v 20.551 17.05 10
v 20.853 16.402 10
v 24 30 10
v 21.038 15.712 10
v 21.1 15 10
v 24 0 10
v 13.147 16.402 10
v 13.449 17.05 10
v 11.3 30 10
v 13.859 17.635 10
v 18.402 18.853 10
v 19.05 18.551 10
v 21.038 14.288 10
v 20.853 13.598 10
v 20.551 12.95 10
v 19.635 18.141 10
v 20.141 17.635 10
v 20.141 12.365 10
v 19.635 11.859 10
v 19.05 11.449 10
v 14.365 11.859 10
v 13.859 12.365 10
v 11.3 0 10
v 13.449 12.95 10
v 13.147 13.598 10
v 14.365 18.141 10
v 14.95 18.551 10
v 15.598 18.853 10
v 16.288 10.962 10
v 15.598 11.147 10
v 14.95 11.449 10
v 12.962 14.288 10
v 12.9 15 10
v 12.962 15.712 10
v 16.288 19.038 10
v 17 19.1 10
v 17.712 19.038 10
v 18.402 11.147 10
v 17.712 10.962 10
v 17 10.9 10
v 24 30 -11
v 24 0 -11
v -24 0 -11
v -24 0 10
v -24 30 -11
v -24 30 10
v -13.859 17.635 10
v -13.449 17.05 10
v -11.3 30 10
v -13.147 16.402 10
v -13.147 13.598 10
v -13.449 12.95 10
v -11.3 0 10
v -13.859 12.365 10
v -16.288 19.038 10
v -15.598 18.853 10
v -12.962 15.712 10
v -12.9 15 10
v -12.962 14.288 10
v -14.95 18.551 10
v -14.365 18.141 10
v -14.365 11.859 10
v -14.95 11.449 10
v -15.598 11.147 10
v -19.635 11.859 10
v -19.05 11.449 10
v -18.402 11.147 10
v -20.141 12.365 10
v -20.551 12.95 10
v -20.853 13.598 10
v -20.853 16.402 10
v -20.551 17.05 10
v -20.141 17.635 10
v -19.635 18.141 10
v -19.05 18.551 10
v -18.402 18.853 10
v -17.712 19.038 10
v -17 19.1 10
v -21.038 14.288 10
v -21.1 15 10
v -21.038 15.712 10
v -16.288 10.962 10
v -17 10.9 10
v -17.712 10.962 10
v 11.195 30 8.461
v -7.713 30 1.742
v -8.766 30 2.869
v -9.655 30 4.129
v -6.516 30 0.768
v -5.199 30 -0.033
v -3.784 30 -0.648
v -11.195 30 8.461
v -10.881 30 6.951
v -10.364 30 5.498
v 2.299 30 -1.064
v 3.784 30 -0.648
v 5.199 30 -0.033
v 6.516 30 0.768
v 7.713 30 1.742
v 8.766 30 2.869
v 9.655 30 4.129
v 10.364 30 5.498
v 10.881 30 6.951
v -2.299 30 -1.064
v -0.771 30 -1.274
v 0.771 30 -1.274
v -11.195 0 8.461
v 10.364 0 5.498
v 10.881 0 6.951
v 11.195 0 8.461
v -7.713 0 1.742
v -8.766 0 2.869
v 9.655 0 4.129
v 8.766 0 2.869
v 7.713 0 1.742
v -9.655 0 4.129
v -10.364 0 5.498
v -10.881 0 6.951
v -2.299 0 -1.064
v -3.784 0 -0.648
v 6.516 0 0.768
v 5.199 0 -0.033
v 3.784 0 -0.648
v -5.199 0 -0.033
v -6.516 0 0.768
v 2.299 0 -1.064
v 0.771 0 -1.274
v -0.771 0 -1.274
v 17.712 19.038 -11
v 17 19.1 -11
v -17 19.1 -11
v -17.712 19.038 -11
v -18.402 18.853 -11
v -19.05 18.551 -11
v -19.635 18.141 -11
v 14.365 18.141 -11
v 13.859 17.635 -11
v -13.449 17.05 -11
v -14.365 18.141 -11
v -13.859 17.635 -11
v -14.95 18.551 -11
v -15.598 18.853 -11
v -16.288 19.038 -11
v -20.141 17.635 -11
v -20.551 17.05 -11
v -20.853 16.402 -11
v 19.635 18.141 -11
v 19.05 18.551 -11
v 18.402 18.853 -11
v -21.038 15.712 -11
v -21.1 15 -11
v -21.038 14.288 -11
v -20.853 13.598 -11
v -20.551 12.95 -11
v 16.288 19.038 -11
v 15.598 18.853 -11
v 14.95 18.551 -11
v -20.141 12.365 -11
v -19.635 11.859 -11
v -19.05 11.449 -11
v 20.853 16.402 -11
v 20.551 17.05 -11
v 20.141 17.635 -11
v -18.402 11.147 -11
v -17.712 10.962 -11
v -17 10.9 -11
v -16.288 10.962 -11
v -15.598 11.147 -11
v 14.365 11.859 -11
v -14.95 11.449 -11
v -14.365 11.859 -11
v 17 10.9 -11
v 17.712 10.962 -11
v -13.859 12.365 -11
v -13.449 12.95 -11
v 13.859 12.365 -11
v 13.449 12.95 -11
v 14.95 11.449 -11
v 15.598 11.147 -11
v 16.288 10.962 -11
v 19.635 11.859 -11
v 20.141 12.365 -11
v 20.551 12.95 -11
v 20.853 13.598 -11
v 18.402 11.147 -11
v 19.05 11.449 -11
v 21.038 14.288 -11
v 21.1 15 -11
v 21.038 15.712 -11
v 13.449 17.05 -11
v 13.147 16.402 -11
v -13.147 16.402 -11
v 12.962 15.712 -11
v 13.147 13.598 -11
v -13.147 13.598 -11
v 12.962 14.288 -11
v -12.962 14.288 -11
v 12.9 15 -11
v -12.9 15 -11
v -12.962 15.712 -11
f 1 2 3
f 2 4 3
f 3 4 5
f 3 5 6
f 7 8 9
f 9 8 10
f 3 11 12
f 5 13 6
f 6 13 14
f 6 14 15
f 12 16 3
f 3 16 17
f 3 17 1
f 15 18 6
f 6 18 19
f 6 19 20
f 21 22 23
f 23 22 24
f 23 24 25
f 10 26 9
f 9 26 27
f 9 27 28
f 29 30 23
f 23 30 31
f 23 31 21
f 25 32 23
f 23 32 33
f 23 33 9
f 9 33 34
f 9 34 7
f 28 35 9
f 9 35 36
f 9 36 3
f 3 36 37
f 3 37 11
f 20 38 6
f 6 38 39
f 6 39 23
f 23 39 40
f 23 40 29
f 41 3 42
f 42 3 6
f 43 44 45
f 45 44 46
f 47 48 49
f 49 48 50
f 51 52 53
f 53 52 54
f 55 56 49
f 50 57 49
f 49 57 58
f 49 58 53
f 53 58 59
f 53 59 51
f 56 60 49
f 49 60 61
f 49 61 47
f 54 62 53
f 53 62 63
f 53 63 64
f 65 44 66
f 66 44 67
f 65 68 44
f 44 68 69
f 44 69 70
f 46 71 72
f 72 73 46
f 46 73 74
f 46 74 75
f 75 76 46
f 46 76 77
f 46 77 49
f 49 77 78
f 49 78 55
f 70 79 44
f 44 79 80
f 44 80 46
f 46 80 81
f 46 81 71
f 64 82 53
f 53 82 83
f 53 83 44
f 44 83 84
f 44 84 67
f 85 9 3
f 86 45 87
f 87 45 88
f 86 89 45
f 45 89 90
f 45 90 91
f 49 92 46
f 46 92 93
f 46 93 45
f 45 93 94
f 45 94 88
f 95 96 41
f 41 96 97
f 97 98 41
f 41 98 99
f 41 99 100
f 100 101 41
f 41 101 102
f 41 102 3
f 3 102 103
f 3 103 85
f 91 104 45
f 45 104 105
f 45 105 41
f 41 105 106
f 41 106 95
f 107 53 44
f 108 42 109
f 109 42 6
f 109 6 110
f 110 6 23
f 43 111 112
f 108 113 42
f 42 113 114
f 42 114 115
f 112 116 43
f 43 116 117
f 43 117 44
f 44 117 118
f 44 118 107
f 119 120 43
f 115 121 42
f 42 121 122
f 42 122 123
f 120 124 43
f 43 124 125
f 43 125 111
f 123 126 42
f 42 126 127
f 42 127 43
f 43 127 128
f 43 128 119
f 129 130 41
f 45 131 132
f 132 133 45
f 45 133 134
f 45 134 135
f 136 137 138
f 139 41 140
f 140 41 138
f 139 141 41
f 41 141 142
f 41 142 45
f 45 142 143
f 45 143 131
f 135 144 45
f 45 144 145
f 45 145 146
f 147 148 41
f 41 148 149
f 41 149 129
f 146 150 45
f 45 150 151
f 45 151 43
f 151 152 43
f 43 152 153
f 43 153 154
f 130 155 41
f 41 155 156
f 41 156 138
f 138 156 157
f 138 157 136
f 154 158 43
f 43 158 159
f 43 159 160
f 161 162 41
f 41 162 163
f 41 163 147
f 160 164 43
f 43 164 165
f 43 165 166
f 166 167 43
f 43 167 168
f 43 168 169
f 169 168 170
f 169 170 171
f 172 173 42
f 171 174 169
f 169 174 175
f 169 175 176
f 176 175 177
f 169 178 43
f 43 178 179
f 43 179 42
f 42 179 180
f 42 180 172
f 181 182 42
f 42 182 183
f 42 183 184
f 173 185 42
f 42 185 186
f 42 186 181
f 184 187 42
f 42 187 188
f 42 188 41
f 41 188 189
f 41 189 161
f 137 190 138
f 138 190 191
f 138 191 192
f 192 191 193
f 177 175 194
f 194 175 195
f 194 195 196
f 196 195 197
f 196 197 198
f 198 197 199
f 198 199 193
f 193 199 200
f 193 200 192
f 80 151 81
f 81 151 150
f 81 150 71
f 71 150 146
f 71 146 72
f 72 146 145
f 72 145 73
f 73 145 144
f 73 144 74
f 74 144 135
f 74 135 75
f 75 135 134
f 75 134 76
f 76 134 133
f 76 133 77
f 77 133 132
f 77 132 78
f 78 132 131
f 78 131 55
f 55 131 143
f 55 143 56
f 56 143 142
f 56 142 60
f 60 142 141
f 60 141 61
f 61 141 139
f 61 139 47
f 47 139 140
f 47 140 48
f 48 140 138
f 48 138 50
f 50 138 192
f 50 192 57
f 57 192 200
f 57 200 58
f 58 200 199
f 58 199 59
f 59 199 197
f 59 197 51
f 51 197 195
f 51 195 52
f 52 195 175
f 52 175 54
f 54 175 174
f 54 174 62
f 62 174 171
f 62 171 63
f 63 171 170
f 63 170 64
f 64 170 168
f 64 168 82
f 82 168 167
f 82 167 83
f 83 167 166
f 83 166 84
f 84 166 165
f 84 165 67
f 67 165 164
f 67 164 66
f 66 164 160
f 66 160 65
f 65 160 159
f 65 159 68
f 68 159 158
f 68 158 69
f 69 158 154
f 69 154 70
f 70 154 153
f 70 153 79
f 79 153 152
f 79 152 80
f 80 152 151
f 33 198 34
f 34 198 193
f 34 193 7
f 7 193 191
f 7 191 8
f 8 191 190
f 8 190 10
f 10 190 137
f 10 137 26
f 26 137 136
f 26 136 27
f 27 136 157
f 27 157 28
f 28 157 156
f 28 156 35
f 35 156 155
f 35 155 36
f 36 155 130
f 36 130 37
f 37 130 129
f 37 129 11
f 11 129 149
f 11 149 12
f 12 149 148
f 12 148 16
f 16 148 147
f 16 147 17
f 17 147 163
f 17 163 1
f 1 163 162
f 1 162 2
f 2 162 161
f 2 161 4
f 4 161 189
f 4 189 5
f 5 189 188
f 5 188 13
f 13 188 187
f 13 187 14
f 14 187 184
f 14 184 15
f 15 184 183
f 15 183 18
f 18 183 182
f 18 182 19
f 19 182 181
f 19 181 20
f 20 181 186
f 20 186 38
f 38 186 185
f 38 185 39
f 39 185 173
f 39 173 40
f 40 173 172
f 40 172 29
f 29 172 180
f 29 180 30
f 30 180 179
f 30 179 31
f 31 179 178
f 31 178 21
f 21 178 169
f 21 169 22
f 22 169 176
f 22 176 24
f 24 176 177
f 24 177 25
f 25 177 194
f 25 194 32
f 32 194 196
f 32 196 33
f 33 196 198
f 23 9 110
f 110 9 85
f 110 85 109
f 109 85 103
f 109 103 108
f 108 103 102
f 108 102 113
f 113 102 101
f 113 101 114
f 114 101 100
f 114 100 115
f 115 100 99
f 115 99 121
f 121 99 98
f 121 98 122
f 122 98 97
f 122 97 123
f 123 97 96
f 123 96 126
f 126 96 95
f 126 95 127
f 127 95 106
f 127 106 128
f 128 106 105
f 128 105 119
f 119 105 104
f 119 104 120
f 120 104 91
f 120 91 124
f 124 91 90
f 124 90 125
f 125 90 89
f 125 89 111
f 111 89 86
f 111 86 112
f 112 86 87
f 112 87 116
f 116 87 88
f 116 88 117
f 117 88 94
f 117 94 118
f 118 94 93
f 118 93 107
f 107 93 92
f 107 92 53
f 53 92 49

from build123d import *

# Parameters (mm, degrees)
SKETCH_1_W          = 48
SKETCH_1_H          = 20
EXTRUDE_1_DEPTH     = 30
SKETCH_2_W          = 14
SKETCH_2_H          = 30
CUT_EXTRUDE_1_DEPTH = 7
SKETCH_7_W          = 22
SKETCH_7_H          = 30
EXTRUDE_2_DEPTH     = 48
SKETCH_8_W          = 21
SKETCH_8_H          = 30
CUT_EXTRUDE_2_DEPTH = 14
SKETCH_9_W          = 21
SKETCH_9_H          = 30
CUT_EXTRUDE_3_DEPTH = 14
SKETCH_11_W         = 10.2
SKETCH_11_H         = 20.2
CUT_EXTRUDE_4_DEPTH = 56.497747702
SKETCH_13_R         = 4.1
CUT_EXTRUDE_5_DEPTH = 44.783558558
FILLET_1_R          = 7
SKETCH1_W           = 10.2
SKETCH1_H           = 20.2
BOSS_EXTRUDE1_DEPTH = 4
SKETCH2_W           = 20
SKETCH2_H           = 21
CUT_EXTRUDE1_DEPTH  = 51
SKETCH3_R           = 11.3
CUT_EXTRUDE2_DEPTH  = 40.962482405


with BuildPart() as part:
    # Эскиз1 → Бобышка-Вытянуть1 (new body)
    with BuildSketch(Plane(origin=(0, 0, 0), x_dir=(1, 0, 0), z_dir=(0, 1, 0))):
        Rectangle(SKETCH_1_W, SKETCH_1_H)
    extrude(amount=EXTRUDE_1_DEPTH)

    # Эскиз2 → Вырез-Вытянуть1 (cut)
    with BuildSketch(Plane.XY.offset(10)):
        with Locations((0, 15)):
            Rectangle(SKETCH_2_W, SKETCH_2_H)
    extrude(amount=-CUT_EXTRUDE_1_DEPTH, mode=Mode.SUBTRACT)

    # Эскиз7 → Бобышка-Вытянуть2 (add)
    with BuildSketch(Plane(origin=(24, 0, 0), x_dir=(0, 0, -1), z_dir=(1, 0, 0))):
        with Locations((21, 15)):
            Rectangle(SKETCH_7_W, SKETCH_7_H)
    extrude(amount=-EXTRUDE_2_DEPTH)

    # Эскиз8 → Вырез-Вытянуть2 (cut)
    with BuildSketch(Plane(origin=(24, 0, 0), x_dir=(0, 0, -1), z_dir=(1, 0, 0))):
        with Locations((21.5, 15)):
            Rectangle(SKETCH_8_W, SKETCH_8_H)
    extrude(amount=-CUT_EXTRUDE_2_DEPTH, mode=Mode.SUBTRACT)

    # Эскиз9 → Вырез-Вытянуть3 (cut)
    with BuildSketch(Plane.ZY.offset(24)):
        with Locations((-21.5, 15)):
            Rectangle(SKETCH_9_W, SKETCH_9_H)
    extrude(amount=-CUT_EXTRUDE_3_DEPTH, mode=Mode.SUBTRACT)

    # Эскиз11 → Вырез-Вытянуть4 (cut, through all)
    with BuildSketch(Plane.ZY.offset(10)):
        with Locations((-21.5, 15)):
            Rectangle(SKETCH_11_W, SKETCH_11_H)
    extrude(amount=-CUT_EXTRUDE_4_DEPTH, mode=Mode.SUBTRACT)

    # Эскиз13 → Вырез-Вытянуть5 (cut, through all)
    with BuildSketch(Plane(origin=(0, 0, -11), x_dir=(-1, 0, 0), z_dir=(0, 0, -1))):
        with Locations((17, 15)):
            Circle(SKETCH_13_R)
        with Locations((-17, 15)):
            Circle(SKETCH_13_R)
    extrude(amount=-CUT_EXTRUDE_5_DEPTH, mode=Mode.SUBTRACT)

    # Скругление1
    fillet_1_edges = [part.edges().sort_by_distance(p)[0] for p in [
        (-7, 15, 3),
        (7, 15, 3),
    ]]
    fillet(fillet_1_edges, radius=FILLET_1_R - 0.0001)  # a hair under: the kernel refuses the full size

    # Sketch1 → Boss-Extrude1 (add)
    with BuildSketch(Plane(origin=(10, 0, 0), x_dir=(0, 0, -1), z_dir=(1, 0, 0))):
        with Locations((21.5, 15)):
            Rectangle(SKETCH1_W, SKETCH1_H)
    extrude(amount=-BOSS_EXTRUDE1_DEPTH)

    # Sketch2 → Cut-Extrude1 (cut, through all)
    with BuildSketch(Plane(origin=(0, 30, 0), x_dir=(1, 0, 0), z_dir=(0, 1, 0))):
        with Locations((0, 21.5)):
            Rectangle(SKETCH2_W, SKETCH2_H)
    extrude(amount=-CUT_EXTRUDE1_DEPTH, mode=Mode.SUBTRACT)

    # Sketch3 → Cut-Extrude2 (cut, through all)
    with BuildSketch(Plane(origin=(0, 30, 0), x_dir=(1, 0, 0), z_dir=(0, 1, 0))):
        with Locations((0, -10)):
            Circle(SKETCH3_R)
    extrude(amount=-CUT_EXTRUDE2_DEPTH, mode=Mode.SUBTRACT)


solid = part.part
